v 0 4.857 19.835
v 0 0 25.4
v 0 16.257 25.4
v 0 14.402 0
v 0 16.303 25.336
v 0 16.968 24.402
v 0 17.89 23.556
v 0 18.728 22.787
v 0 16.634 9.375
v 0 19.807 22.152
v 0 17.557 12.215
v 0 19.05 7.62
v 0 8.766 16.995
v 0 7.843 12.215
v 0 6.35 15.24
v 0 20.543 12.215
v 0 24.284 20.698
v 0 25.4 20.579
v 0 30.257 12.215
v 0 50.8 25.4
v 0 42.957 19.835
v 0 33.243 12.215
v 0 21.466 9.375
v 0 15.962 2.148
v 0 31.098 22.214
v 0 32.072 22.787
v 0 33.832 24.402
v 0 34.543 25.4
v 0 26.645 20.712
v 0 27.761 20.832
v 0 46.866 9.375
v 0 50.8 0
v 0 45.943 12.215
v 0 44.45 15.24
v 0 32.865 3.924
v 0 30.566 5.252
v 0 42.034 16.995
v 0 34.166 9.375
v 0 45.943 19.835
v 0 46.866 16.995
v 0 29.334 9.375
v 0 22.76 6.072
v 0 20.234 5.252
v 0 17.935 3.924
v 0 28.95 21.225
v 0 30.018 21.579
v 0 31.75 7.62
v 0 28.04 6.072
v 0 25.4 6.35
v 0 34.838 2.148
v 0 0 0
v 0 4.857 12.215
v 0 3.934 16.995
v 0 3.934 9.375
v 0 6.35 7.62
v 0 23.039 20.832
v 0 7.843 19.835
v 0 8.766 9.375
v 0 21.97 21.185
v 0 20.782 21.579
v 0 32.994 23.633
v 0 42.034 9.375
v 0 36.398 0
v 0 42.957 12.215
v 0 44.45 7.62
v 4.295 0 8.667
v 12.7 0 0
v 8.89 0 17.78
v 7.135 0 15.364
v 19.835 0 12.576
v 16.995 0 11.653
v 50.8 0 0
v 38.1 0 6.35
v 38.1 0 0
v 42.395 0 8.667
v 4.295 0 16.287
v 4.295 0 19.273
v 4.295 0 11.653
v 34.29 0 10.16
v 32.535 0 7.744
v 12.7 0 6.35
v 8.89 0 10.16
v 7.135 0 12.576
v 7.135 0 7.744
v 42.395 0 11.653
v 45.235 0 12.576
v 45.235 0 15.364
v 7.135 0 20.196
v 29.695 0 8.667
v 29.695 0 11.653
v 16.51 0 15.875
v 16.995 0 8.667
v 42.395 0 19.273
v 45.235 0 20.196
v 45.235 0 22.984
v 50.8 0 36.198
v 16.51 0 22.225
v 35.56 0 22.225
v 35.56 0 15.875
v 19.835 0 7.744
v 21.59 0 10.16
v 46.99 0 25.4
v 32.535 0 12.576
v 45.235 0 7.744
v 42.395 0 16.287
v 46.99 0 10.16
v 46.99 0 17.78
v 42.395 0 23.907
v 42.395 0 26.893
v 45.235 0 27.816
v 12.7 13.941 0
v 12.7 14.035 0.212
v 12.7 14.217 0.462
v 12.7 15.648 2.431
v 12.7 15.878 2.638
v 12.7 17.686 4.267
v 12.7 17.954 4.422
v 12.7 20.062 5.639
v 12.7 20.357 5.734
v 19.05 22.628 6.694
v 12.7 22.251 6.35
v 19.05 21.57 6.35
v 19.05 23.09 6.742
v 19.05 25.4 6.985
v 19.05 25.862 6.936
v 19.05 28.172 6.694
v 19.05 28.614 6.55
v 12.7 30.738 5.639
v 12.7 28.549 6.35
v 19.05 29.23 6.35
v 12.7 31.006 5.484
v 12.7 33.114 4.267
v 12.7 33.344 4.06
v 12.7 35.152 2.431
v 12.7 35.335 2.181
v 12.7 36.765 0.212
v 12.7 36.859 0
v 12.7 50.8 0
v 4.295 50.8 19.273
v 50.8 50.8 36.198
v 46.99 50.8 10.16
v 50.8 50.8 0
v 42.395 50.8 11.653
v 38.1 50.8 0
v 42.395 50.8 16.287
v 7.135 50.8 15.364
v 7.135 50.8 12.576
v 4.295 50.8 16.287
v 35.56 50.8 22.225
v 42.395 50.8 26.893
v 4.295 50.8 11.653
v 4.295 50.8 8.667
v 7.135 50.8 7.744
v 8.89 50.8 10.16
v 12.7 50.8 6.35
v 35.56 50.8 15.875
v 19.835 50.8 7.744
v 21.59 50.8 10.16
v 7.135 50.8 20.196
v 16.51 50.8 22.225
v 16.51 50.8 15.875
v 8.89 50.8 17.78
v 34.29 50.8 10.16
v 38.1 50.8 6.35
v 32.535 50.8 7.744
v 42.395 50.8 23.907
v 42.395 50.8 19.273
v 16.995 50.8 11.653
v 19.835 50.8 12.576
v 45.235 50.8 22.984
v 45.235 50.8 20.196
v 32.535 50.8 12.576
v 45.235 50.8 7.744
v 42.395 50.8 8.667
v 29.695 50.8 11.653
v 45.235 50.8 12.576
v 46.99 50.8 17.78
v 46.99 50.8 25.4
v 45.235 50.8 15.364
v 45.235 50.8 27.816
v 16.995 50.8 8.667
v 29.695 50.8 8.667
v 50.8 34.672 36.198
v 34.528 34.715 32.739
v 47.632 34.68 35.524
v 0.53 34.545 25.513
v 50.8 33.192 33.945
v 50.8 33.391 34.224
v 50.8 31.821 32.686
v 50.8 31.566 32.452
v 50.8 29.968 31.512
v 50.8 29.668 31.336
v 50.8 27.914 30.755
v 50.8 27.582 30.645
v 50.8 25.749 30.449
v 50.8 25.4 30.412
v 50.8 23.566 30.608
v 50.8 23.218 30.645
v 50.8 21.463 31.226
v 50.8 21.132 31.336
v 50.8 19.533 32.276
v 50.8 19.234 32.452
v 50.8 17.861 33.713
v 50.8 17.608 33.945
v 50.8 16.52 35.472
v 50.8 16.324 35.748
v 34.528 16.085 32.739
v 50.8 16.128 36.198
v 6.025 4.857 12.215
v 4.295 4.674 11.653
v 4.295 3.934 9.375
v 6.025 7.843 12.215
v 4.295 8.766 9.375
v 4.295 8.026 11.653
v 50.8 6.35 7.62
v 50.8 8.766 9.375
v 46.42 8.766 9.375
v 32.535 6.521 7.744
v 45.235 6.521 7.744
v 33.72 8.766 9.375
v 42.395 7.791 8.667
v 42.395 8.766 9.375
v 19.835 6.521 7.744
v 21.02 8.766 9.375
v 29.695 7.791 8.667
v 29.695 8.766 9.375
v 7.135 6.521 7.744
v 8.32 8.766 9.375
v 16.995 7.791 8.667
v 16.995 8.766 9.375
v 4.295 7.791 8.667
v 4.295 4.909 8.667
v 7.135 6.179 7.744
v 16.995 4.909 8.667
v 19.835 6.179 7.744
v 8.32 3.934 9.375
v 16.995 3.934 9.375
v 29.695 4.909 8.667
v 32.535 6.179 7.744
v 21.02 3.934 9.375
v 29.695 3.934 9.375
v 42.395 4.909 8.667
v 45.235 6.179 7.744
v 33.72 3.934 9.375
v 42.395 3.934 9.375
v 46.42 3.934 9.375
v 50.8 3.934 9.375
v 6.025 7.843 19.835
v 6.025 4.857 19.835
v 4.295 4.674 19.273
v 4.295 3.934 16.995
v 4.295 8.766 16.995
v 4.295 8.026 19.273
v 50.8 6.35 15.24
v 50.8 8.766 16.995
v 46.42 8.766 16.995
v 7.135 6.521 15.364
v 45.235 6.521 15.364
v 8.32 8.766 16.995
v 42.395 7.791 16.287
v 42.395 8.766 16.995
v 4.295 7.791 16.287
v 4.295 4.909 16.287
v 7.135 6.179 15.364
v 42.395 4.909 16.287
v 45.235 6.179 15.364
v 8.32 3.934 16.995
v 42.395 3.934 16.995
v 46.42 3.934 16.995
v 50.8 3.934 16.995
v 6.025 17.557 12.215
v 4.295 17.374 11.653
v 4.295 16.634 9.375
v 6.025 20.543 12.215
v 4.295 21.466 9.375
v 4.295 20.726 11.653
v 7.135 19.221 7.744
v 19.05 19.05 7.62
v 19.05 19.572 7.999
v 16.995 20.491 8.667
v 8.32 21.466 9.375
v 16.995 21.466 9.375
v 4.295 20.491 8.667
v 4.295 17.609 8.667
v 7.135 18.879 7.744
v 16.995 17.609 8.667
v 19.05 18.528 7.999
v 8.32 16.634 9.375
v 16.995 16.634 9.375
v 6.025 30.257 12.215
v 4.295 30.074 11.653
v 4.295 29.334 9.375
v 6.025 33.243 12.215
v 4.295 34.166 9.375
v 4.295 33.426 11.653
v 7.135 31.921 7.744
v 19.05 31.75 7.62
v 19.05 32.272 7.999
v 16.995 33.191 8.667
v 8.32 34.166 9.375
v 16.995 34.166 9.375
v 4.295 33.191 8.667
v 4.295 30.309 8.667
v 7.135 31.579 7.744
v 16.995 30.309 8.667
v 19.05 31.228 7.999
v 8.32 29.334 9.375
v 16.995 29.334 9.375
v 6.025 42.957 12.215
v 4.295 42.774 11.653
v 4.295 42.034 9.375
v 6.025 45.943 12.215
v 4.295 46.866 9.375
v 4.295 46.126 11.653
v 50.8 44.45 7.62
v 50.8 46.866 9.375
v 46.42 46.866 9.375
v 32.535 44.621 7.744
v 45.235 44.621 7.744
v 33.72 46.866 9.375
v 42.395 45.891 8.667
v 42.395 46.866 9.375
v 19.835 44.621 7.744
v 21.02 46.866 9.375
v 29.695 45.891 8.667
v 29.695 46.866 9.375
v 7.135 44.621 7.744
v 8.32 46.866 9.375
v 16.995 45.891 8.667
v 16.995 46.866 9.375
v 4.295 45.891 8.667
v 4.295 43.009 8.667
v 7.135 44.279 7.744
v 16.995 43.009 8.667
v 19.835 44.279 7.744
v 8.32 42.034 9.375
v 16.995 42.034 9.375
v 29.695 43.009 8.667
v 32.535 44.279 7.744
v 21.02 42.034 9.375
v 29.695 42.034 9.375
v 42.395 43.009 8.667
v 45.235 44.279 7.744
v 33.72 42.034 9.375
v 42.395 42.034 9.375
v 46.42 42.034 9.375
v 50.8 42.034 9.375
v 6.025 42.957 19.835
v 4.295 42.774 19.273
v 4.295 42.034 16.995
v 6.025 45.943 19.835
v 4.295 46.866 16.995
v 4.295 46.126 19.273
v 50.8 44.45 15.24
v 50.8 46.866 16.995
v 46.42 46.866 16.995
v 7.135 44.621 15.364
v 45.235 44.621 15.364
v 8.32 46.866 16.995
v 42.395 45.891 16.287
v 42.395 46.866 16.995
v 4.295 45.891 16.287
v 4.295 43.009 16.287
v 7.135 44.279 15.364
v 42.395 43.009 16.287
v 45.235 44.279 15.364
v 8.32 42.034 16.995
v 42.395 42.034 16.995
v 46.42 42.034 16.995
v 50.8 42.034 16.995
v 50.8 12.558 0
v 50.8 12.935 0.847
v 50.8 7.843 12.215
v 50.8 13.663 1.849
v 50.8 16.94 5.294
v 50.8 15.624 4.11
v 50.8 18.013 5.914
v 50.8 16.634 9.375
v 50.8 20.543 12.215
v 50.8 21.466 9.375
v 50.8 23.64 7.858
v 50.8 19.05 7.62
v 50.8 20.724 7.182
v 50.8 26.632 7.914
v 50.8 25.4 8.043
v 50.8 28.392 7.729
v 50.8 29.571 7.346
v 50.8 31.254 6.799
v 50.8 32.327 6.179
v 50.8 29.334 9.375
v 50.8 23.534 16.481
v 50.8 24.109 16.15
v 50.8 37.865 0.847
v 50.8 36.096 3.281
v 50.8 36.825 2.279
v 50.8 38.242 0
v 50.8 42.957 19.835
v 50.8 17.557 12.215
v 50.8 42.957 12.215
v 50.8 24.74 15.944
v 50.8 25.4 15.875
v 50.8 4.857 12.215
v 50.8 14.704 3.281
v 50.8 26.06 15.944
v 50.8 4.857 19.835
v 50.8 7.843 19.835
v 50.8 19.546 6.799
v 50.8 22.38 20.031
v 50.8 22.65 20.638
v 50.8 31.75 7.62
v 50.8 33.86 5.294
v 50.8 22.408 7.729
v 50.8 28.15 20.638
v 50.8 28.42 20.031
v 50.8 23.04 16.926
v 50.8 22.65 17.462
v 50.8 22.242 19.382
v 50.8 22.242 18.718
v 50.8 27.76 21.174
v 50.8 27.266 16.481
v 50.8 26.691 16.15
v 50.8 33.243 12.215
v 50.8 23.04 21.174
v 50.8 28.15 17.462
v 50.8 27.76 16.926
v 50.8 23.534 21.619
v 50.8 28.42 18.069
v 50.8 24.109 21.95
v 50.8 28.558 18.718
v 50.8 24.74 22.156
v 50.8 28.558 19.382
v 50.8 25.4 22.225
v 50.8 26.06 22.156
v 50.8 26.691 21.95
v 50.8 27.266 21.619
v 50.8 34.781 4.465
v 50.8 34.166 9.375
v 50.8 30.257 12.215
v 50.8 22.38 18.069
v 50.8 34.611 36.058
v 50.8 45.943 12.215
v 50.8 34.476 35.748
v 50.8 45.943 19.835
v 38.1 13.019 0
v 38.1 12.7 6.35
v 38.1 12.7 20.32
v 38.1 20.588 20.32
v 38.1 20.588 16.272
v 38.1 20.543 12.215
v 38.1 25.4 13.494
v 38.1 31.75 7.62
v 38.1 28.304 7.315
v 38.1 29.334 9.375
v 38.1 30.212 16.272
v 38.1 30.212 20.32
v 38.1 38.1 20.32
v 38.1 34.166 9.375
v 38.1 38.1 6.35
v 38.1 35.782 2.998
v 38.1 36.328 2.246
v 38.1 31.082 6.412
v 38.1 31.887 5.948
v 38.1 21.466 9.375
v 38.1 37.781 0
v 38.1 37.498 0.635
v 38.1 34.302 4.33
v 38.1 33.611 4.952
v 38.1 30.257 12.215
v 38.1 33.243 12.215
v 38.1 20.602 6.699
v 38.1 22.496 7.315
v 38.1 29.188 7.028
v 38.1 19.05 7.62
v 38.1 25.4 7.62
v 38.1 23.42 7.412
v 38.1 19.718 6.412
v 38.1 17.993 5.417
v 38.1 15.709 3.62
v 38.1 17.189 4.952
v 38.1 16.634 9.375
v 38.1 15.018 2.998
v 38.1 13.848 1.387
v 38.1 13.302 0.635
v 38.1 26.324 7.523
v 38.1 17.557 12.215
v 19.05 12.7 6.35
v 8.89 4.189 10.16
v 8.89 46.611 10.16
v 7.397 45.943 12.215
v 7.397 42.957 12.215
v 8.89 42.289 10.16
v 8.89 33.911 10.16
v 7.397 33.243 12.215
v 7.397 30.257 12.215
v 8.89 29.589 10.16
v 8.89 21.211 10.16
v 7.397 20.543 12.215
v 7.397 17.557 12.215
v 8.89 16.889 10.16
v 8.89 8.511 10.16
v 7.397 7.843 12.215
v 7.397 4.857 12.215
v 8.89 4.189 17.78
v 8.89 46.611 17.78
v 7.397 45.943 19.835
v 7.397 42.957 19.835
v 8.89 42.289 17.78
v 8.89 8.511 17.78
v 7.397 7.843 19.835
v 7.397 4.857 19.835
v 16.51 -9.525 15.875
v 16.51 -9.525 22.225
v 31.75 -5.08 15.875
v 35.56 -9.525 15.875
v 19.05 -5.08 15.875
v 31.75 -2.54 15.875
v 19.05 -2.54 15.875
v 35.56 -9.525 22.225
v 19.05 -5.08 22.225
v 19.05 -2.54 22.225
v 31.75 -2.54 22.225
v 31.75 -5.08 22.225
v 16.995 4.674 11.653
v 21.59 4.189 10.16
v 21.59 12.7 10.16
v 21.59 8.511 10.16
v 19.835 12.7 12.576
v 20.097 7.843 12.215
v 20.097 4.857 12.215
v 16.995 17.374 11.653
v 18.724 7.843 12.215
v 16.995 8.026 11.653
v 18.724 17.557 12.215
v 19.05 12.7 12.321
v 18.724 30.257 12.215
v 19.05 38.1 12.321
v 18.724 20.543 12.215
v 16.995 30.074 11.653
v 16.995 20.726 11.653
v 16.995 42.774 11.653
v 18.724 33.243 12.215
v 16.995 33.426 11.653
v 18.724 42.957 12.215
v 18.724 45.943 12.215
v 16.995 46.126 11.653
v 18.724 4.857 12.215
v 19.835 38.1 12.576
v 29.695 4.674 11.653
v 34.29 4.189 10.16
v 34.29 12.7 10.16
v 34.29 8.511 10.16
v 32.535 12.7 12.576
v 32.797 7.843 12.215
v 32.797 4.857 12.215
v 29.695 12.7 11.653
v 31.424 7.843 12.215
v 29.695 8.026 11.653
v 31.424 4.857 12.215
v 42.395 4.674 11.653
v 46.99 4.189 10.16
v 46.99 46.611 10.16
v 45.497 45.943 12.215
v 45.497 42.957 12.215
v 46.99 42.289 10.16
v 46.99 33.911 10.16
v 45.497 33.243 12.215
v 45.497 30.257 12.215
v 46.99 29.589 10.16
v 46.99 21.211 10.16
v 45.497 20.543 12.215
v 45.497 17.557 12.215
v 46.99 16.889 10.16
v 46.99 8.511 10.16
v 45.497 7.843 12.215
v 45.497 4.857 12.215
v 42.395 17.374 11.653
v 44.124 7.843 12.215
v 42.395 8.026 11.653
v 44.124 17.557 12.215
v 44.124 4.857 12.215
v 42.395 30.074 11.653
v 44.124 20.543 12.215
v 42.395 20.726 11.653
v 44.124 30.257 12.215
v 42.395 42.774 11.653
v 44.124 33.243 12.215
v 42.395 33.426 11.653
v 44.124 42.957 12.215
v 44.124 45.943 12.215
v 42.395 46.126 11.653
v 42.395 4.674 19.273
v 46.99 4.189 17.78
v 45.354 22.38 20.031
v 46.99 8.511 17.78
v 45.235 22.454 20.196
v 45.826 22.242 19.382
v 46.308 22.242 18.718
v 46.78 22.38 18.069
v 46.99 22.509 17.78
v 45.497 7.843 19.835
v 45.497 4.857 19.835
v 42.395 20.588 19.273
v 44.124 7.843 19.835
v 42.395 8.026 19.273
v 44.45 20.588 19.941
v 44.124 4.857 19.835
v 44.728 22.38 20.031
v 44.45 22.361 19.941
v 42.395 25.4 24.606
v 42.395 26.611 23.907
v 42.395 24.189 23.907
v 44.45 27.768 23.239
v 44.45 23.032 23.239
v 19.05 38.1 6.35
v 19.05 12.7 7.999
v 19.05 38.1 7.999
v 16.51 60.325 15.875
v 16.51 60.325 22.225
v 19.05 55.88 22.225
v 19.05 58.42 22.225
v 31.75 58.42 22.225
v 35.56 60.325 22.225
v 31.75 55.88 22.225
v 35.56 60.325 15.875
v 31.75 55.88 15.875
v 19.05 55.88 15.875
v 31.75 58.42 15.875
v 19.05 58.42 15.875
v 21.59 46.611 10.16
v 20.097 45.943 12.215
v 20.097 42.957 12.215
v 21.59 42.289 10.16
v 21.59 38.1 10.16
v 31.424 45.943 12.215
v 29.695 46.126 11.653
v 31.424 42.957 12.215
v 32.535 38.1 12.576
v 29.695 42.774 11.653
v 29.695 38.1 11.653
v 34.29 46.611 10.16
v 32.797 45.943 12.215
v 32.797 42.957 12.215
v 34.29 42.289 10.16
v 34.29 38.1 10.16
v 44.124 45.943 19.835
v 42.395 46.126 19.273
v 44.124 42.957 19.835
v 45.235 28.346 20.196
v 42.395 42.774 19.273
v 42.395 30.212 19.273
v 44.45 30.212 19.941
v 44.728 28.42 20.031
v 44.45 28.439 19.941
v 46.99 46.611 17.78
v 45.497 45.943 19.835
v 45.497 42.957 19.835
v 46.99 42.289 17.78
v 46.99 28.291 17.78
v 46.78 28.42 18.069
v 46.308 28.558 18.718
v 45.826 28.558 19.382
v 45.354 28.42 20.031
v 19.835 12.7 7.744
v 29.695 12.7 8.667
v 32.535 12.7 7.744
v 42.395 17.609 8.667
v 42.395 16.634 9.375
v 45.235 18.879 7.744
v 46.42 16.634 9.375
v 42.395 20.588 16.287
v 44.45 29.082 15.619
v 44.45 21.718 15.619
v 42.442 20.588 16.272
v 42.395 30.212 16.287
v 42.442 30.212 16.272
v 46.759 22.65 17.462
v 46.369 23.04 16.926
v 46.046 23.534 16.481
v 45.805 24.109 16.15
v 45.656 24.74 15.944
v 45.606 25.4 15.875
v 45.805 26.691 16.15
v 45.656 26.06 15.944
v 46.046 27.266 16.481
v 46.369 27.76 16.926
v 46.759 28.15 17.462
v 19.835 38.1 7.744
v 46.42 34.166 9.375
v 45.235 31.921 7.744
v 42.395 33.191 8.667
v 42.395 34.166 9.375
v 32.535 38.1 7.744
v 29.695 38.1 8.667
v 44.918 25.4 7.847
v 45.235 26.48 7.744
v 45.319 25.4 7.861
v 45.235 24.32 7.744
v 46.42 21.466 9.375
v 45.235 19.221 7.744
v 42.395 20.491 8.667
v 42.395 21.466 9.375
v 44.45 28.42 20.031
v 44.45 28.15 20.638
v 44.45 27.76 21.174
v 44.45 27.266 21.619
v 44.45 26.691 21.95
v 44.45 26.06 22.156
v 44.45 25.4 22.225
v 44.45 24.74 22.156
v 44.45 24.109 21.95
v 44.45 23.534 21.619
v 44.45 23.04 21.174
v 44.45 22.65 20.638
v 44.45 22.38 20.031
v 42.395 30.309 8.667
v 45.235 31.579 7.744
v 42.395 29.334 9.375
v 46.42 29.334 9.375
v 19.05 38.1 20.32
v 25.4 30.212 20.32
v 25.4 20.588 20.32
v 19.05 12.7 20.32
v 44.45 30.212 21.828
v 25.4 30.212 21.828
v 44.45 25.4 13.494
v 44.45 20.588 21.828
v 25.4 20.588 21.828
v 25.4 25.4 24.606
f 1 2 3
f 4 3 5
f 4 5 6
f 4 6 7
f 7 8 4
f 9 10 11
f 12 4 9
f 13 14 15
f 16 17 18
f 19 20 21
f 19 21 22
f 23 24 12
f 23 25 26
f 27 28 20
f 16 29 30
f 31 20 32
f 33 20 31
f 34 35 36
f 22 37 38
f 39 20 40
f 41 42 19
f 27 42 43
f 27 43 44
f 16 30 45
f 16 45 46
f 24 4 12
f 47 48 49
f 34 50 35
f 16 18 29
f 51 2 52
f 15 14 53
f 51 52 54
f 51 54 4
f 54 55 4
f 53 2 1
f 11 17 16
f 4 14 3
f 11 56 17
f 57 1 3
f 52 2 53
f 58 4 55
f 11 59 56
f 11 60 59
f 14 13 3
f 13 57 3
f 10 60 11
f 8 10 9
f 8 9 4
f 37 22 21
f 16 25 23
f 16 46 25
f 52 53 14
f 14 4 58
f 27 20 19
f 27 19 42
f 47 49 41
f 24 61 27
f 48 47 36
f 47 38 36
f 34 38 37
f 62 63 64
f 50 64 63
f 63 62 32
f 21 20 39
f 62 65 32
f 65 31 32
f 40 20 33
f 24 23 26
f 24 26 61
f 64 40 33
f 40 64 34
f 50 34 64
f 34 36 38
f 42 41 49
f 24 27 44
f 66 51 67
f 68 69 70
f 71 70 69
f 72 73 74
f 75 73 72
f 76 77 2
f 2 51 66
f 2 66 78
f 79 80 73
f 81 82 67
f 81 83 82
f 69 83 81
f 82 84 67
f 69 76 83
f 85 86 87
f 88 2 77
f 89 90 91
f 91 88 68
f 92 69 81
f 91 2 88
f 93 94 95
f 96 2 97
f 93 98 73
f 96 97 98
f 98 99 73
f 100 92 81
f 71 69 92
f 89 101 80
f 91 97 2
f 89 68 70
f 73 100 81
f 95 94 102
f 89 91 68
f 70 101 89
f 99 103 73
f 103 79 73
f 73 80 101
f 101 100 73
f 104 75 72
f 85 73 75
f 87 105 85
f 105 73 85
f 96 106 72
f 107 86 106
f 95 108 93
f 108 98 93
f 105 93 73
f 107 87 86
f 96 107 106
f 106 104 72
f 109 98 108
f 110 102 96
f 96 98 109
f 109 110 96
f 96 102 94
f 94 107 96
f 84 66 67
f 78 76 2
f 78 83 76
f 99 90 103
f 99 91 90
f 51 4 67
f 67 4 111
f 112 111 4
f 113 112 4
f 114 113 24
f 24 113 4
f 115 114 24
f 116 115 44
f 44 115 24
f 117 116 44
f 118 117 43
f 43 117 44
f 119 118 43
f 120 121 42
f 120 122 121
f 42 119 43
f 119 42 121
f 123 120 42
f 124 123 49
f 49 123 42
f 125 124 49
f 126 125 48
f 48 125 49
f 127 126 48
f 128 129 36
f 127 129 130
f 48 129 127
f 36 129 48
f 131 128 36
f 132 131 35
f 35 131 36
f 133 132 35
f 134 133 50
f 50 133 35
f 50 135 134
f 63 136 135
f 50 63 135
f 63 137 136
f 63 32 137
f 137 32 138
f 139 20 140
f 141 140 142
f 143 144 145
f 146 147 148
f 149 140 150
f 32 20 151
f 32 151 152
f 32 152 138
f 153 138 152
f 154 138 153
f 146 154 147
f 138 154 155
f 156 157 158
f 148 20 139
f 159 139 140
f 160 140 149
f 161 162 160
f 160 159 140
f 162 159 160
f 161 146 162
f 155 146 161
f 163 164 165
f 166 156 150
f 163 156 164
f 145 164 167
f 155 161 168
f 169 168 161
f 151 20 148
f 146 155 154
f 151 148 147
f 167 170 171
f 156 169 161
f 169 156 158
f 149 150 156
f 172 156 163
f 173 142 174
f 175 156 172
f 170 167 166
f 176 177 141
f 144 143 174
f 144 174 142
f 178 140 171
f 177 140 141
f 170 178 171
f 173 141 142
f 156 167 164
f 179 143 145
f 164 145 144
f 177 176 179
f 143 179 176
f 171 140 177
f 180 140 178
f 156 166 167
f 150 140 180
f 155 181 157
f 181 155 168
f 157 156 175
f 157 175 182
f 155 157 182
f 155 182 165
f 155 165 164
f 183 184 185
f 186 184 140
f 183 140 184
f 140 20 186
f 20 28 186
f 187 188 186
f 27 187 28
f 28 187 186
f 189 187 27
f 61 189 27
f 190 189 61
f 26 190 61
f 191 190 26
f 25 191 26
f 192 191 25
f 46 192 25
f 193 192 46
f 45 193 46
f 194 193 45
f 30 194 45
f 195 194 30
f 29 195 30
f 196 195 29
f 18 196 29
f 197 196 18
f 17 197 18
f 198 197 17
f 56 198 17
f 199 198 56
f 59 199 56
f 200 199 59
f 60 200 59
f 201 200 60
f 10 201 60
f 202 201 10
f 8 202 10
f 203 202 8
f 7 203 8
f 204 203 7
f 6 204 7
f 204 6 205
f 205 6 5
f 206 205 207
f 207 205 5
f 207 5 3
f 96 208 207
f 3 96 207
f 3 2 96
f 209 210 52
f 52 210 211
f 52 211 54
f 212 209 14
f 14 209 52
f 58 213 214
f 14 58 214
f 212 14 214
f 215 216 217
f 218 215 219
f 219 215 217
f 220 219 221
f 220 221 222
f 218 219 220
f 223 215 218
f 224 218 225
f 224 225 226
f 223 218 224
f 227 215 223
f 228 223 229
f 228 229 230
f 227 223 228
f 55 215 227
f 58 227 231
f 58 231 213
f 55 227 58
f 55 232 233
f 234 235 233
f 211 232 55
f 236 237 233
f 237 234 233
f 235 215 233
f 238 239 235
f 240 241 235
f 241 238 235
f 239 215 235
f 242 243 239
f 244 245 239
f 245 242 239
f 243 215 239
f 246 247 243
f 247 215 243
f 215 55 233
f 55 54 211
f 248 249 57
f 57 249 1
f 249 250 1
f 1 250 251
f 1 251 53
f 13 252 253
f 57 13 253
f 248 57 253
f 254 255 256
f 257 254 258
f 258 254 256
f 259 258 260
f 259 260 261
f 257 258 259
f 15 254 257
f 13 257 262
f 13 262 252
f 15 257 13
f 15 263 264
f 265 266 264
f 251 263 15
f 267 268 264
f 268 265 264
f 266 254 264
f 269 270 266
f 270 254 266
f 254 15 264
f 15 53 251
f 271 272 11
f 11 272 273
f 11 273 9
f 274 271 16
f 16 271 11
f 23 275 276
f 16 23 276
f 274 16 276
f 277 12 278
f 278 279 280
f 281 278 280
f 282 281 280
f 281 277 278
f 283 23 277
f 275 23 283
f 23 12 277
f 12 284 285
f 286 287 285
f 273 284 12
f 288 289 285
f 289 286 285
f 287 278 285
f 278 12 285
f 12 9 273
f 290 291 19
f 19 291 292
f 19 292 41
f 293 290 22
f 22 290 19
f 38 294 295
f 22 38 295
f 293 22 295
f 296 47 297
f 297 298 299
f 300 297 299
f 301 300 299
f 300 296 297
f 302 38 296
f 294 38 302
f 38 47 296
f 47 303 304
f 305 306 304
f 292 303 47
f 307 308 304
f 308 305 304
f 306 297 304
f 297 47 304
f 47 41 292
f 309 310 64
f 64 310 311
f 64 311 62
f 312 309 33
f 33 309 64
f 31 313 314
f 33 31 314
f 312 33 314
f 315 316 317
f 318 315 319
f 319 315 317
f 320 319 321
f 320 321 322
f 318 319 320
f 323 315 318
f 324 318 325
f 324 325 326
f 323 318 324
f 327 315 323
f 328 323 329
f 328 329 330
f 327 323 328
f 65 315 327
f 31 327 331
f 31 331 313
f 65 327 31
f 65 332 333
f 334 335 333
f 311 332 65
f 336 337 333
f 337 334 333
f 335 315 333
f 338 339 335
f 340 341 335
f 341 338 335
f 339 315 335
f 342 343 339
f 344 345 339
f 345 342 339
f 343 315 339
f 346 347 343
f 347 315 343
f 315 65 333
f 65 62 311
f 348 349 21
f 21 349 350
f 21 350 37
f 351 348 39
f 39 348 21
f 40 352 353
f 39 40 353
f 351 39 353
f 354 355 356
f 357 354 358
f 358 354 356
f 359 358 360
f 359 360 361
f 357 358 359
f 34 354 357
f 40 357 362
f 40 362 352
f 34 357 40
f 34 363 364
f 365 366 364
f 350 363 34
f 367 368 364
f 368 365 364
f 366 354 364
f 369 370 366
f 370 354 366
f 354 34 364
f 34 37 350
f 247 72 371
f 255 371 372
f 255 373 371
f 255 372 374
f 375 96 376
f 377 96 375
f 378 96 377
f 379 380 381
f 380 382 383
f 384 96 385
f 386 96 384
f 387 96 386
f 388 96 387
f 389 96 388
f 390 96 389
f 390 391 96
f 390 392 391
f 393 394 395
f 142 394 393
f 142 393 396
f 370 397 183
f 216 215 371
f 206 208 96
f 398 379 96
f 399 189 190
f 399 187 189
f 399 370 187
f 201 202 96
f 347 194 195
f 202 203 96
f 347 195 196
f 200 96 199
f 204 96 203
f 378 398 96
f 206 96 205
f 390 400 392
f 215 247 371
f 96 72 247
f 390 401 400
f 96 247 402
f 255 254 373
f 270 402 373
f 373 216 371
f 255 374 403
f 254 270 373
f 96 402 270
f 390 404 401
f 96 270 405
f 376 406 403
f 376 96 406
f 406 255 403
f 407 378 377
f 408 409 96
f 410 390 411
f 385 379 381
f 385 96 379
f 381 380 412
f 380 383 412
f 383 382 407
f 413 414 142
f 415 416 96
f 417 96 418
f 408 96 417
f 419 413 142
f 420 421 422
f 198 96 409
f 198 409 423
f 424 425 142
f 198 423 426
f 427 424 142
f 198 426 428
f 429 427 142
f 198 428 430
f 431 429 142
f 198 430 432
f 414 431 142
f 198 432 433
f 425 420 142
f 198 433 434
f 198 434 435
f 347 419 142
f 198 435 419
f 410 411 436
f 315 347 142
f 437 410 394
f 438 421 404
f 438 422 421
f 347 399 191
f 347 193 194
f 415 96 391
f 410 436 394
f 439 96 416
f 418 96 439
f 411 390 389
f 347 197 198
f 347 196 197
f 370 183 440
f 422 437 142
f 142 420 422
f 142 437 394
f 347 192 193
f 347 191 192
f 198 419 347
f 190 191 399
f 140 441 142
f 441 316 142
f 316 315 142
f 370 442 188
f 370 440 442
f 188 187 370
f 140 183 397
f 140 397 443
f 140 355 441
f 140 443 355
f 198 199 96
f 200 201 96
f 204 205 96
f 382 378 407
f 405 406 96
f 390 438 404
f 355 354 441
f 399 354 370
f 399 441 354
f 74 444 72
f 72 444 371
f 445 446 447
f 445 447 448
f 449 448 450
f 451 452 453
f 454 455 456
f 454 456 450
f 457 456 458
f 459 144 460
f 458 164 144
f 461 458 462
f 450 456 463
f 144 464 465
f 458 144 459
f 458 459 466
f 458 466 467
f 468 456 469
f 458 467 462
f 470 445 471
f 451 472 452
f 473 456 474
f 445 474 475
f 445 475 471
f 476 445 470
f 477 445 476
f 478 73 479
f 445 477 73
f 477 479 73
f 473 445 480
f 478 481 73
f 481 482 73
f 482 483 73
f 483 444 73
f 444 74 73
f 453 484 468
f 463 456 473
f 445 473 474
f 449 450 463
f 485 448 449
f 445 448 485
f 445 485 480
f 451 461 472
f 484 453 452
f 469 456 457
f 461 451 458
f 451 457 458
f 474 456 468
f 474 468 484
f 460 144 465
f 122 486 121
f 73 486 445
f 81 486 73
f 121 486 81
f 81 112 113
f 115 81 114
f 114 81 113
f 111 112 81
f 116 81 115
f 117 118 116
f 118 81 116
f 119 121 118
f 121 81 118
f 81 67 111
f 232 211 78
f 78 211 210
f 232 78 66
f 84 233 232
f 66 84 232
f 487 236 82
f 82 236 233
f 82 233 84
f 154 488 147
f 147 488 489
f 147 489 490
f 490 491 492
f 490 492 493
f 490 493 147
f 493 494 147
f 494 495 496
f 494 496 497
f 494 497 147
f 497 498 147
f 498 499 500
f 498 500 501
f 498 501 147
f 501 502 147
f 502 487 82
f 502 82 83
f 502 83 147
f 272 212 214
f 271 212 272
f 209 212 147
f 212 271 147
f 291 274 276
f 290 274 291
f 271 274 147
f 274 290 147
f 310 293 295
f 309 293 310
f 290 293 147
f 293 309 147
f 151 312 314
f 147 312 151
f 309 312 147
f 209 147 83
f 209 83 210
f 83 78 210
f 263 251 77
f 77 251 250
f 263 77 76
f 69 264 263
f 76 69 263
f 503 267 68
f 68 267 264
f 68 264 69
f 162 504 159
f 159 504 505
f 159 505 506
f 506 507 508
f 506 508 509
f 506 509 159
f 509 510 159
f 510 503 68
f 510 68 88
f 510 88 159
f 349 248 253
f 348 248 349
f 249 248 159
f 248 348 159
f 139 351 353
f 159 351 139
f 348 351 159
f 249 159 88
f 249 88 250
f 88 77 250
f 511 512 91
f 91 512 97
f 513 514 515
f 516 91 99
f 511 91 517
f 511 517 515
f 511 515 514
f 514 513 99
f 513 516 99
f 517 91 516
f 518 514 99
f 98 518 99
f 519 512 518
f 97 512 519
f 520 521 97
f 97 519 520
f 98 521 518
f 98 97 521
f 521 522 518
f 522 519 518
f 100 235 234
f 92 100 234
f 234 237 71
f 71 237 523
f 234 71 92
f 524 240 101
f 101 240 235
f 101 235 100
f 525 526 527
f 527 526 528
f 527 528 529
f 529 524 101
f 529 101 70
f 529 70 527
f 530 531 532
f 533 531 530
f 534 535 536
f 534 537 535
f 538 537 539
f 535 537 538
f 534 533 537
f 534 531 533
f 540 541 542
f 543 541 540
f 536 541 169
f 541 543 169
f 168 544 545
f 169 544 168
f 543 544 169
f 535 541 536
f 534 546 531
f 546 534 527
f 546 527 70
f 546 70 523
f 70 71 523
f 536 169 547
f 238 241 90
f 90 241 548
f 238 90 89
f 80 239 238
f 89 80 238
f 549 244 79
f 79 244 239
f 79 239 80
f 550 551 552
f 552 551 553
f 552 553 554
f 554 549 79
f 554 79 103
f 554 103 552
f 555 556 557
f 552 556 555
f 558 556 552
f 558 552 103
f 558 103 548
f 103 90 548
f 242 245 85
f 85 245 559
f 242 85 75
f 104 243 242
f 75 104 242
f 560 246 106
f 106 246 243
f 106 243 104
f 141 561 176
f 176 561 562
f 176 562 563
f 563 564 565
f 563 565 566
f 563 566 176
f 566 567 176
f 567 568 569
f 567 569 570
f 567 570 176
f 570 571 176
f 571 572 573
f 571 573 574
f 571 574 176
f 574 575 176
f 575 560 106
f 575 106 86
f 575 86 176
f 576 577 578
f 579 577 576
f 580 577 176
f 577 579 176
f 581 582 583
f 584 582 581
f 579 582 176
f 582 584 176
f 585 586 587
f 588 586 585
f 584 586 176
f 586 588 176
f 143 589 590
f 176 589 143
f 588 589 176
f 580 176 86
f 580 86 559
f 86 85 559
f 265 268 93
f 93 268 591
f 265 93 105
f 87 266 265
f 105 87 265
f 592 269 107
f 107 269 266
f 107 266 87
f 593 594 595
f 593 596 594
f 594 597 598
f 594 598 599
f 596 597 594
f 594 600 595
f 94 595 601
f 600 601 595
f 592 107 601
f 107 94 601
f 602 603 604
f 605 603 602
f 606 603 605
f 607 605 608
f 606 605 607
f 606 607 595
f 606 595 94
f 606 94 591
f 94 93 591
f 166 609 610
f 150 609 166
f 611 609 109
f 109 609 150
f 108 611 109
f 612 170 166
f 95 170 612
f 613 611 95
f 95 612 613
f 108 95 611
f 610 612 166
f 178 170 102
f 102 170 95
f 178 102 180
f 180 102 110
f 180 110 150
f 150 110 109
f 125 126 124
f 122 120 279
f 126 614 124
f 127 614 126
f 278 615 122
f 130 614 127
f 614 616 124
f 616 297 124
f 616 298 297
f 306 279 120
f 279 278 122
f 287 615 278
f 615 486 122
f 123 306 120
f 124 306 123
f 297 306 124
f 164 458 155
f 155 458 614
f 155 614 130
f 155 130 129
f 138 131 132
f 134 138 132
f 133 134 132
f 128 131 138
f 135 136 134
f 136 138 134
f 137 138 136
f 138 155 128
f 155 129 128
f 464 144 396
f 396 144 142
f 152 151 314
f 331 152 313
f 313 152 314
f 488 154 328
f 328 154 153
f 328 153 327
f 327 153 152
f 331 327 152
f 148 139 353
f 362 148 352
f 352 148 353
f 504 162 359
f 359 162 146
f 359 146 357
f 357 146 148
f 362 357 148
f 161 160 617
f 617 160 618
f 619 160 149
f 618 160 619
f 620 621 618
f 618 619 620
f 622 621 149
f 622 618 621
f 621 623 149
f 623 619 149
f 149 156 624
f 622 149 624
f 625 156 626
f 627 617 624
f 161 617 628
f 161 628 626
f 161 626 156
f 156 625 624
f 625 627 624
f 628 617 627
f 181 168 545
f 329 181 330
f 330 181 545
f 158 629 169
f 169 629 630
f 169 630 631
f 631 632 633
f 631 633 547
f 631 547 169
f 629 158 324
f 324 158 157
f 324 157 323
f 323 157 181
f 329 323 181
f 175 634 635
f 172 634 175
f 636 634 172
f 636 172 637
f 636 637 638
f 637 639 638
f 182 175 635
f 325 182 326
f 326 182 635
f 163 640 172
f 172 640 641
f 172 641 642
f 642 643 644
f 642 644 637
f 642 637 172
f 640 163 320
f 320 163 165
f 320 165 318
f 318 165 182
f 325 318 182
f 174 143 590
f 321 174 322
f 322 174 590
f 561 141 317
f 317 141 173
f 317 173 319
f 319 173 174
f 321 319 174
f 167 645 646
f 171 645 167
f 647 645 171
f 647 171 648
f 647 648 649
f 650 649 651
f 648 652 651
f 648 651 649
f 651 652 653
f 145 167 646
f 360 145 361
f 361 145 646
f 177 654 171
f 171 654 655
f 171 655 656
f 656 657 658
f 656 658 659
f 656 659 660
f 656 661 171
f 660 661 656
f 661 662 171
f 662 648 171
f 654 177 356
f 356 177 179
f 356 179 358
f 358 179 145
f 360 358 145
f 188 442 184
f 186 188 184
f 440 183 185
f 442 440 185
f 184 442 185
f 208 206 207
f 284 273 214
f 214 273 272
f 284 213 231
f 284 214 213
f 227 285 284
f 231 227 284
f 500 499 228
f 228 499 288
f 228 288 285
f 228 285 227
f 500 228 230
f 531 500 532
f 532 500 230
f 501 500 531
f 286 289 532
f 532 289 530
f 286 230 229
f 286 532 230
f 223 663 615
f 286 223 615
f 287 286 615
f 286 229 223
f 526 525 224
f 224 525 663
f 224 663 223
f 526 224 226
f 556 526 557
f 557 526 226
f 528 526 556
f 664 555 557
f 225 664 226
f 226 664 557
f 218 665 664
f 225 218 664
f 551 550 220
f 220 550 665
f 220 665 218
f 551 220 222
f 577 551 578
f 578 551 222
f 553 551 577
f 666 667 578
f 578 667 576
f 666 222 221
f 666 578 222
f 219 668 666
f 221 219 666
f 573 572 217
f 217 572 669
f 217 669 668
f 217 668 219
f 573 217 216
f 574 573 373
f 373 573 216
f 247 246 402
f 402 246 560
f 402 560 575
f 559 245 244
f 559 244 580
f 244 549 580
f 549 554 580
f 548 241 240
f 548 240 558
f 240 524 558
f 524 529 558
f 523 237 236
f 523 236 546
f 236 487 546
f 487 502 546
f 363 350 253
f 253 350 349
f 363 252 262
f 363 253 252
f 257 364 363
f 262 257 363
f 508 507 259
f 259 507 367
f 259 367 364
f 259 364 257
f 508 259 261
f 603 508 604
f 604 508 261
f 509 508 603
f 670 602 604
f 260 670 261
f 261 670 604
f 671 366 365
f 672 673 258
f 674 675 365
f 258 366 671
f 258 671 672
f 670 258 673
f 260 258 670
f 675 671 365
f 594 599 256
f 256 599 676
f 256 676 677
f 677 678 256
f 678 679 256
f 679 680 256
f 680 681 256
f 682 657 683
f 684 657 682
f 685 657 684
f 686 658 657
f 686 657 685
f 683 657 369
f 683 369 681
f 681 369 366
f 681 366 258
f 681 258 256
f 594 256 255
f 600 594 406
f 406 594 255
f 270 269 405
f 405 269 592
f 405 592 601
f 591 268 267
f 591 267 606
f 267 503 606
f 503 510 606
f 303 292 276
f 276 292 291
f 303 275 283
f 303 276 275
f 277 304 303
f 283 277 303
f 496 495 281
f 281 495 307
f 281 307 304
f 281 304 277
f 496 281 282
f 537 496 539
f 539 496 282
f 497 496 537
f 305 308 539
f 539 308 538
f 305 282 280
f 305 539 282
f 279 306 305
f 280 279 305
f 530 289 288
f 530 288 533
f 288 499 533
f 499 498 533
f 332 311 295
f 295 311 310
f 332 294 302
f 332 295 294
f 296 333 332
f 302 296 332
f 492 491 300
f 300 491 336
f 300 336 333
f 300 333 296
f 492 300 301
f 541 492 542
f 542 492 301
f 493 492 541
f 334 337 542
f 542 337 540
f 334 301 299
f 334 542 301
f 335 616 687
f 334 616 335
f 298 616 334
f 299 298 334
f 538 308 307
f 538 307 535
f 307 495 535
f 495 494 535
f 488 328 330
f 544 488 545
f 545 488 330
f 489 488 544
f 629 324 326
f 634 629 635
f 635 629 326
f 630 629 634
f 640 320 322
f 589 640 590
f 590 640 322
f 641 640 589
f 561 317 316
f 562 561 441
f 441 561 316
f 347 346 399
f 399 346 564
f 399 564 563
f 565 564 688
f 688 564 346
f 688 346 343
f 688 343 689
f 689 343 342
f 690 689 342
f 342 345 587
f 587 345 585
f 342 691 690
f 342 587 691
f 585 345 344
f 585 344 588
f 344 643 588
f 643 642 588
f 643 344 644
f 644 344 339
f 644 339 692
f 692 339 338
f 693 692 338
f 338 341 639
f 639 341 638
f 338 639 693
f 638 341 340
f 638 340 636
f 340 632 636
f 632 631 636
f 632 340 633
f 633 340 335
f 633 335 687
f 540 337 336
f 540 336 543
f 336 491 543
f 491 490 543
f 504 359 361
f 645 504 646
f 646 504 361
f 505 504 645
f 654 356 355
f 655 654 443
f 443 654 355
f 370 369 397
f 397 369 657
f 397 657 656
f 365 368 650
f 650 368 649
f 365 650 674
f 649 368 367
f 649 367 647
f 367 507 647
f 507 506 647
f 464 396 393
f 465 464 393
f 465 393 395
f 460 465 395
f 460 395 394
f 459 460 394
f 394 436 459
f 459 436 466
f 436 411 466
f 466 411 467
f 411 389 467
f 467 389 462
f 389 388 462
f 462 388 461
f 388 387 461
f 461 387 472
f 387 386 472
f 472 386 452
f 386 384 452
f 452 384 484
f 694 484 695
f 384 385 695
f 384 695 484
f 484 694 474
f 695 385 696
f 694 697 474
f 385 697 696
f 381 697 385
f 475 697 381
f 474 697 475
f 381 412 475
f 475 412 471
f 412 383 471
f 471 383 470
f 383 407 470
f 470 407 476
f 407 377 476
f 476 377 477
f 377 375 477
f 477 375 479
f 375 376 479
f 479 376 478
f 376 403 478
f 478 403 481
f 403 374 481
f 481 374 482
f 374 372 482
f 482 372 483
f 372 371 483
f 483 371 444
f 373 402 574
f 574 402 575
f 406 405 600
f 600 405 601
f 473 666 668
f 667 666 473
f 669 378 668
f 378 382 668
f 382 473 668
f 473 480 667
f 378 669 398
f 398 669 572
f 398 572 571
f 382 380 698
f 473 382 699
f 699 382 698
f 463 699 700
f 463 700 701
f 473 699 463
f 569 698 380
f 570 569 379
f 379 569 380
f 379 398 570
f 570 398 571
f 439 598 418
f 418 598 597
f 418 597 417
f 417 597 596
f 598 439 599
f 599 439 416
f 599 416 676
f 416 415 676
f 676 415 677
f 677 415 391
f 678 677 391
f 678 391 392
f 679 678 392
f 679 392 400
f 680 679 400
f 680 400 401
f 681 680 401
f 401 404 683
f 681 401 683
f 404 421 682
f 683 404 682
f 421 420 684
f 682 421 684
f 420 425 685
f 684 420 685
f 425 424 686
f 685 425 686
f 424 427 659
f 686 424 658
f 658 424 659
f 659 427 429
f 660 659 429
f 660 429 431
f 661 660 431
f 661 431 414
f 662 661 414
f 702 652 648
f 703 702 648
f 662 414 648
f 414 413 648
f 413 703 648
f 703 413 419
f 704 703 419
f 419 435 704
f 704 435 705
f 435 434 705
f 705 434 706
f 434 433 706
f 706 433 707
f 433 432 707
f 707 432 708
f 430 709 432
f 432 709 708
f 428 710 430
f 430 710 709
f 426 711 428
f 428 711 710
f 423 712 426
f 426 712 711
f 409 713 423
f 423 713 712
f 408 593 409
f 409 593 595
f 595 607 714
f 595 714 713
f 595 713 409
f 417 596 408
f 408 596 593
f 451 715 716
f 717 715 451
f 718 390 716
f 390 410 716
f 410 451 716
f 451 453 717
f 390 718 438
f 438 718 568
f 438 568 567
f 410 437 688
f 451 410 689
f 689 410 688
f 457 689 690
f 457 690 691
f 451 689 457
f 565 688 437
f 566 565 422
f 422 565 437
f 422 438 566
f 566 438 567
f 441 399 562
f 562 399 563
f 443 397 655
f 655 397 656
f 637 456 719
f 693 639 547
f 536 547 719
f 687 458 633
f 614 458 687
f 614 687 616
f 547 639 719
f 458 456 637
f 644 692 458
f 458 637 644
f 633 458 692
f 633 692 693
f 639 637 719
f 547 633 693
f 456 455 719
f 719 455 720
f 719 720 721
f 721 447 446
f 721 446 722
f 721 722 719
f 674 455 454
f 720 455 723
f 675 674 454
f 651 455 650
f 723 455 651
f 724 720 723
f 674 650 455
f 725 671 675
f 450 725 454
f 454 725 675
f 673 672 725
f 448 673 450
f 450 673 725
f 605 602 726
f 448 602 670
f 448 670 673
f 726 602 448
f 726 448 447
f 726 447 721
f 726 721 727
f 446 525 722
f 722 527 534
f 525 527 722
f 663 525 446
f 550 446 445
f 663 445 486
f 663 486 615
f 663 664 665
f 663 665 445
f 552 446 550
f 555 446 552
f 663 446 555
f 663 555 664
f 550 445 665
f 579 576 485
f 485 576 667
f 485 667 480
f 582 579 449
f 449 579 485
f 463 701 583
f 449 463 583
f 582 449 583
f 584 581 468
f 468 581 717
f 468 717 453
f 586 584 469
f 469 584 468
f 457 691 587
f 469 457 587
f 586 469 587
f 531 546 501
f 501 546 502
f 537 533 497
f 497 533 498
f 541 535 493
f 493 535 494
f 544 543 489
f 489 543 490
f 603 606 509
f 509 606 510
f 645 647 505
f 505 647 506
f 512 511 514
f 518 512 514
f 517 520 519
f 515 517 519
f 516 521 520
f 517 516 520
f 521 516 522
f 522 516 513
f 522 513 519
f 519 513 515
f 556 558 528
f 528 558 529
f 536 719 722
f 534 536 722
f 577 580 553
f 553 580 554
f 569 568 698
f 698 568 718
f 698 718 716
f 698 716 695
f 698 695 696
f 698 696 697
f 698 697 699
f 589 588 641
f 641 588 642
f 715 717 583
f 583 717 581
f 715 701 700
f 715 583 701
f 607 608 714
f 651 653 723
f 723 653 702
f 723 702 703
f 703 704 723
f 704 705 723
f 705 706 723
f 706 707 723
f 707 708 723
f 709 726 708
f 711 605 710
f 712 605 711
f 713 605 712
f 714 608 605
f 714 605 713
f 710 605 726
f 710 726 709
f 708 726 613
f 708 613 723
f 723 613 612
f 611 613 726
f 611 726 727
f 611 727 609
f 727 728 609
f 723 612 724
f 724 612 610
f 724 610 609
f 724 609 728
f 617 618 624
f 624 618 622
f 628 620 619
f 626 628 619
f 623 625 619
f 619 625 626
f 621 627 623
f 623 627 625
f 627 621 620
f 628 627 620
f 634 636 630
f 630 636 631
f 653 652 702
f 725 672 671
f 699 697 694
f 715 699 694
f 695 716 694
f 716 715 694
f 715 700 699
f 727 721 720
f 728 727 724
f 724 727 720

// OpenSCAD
// Trying to be a trekking pole camera mount
// jellsworth Dec 2014
//
// units = inches
// scale to mm for printing
scale([25.4, 25.4, 25.4]) {

difference() {
	union(){
		// base block
		translate([0, 0, 0]) {
			cube([ 2, 2, 1.5 ], false);
		}

		// add strap supports
		difference() {
			// add strap base
			// center with bolt hole
			translate( [0.65, -0.375, 0.5 + 1/8]) {
				cube([ 0.75, 2.75, 0.25]);
			}
			
			// cut strap holes
			translate([0.75, -0.2, 0]){
				cube([0.5, 0.1, 2], false);
			}
			translate([0.75, 2.2, 0]){
				cube([0.5, 0.1, 2], false);
			}
		}
	}



	// remove wedge
	translate([ 0, 0, 1]) {
		rotate([ 0, -12, 0]) {
			cube([ 3, 2, 1 ], false);
		}
	}

	// remove cross-cut
	translate([ 0.5, -0.5, 0]) {
		cube([ 1, 3, 0.25 ], false);
	}


	// remove pole channel 1
	translate([ 0, 1, -0.25]) {
		rotate([ 0, 90, 0]) {
			cylinder(h = 6, r1 = 0.5, r2 = 0.7, center = false, $fn=30);
		}
	}

	// remove pole channel 2
	translate([ -3.2, 1, 0.7]) {
		rotate([ 0, 80, 0]) {
			cylinder(h = 6, r1 = 0.5, r2 = 0.4, center = false, $fn=30);
		}
	}


	//cut hole for bolt
	//1/4" - 20 x 3/4" (w/ 7/16" head)
	translate([1, 1, 0.75]){
		rotate([0, 90, 0]){
			cylinder(h = 0.75, d=7/16, $fn=6);
			cylinder(h = 1.5, d=1/4, $fn=30);
		}
	}

	//cut bolt access
	translate([0.75, 0.5, 0]){
		cube([ 0.75, 1, 0.8]);
	}
	
	//reduce volume
	// bottom row
	vhole(1.75, 0.4);
	vhole(1.25, 0.4);
	vhole(0.75, 0.4);
	vhole(0.25, 0.4);

	//  middle row
	vhole(1.75, 0.7);
	vhole(0.25, 0.7);

	//  top row
	vhole(1.75, 1);

	//endwise holes
	//bottom
	vhole2(0.25, 0.4);
	vhole2(0.75, 0.4);
	vhole2(1.25, 0.4);
	vhole2(1.75, 0.4);

	//top
	vhole2(0.25, 0.7);
	vhole2(1.75, 0.7);


} // end difference block
} // end scale block



// create cross-holes to reduce volume
module vhole(hx,hz,diam=0.2) {
	translate([hx, -0.5, hz]){
		rotate([-90, 0, 0]){
			cylinder(h = 3, d=diam, $fn=5);
		}
	}
}

// create lengthwise holes to reduce volume
module vhole2(hy,hz,diam=0.2) {
	translate([-0.5, hy, hz]){
		rotate([0, 90, 0]){
			cylinder(h = 3, d=diam, $fn=5);
		}
	}
}
